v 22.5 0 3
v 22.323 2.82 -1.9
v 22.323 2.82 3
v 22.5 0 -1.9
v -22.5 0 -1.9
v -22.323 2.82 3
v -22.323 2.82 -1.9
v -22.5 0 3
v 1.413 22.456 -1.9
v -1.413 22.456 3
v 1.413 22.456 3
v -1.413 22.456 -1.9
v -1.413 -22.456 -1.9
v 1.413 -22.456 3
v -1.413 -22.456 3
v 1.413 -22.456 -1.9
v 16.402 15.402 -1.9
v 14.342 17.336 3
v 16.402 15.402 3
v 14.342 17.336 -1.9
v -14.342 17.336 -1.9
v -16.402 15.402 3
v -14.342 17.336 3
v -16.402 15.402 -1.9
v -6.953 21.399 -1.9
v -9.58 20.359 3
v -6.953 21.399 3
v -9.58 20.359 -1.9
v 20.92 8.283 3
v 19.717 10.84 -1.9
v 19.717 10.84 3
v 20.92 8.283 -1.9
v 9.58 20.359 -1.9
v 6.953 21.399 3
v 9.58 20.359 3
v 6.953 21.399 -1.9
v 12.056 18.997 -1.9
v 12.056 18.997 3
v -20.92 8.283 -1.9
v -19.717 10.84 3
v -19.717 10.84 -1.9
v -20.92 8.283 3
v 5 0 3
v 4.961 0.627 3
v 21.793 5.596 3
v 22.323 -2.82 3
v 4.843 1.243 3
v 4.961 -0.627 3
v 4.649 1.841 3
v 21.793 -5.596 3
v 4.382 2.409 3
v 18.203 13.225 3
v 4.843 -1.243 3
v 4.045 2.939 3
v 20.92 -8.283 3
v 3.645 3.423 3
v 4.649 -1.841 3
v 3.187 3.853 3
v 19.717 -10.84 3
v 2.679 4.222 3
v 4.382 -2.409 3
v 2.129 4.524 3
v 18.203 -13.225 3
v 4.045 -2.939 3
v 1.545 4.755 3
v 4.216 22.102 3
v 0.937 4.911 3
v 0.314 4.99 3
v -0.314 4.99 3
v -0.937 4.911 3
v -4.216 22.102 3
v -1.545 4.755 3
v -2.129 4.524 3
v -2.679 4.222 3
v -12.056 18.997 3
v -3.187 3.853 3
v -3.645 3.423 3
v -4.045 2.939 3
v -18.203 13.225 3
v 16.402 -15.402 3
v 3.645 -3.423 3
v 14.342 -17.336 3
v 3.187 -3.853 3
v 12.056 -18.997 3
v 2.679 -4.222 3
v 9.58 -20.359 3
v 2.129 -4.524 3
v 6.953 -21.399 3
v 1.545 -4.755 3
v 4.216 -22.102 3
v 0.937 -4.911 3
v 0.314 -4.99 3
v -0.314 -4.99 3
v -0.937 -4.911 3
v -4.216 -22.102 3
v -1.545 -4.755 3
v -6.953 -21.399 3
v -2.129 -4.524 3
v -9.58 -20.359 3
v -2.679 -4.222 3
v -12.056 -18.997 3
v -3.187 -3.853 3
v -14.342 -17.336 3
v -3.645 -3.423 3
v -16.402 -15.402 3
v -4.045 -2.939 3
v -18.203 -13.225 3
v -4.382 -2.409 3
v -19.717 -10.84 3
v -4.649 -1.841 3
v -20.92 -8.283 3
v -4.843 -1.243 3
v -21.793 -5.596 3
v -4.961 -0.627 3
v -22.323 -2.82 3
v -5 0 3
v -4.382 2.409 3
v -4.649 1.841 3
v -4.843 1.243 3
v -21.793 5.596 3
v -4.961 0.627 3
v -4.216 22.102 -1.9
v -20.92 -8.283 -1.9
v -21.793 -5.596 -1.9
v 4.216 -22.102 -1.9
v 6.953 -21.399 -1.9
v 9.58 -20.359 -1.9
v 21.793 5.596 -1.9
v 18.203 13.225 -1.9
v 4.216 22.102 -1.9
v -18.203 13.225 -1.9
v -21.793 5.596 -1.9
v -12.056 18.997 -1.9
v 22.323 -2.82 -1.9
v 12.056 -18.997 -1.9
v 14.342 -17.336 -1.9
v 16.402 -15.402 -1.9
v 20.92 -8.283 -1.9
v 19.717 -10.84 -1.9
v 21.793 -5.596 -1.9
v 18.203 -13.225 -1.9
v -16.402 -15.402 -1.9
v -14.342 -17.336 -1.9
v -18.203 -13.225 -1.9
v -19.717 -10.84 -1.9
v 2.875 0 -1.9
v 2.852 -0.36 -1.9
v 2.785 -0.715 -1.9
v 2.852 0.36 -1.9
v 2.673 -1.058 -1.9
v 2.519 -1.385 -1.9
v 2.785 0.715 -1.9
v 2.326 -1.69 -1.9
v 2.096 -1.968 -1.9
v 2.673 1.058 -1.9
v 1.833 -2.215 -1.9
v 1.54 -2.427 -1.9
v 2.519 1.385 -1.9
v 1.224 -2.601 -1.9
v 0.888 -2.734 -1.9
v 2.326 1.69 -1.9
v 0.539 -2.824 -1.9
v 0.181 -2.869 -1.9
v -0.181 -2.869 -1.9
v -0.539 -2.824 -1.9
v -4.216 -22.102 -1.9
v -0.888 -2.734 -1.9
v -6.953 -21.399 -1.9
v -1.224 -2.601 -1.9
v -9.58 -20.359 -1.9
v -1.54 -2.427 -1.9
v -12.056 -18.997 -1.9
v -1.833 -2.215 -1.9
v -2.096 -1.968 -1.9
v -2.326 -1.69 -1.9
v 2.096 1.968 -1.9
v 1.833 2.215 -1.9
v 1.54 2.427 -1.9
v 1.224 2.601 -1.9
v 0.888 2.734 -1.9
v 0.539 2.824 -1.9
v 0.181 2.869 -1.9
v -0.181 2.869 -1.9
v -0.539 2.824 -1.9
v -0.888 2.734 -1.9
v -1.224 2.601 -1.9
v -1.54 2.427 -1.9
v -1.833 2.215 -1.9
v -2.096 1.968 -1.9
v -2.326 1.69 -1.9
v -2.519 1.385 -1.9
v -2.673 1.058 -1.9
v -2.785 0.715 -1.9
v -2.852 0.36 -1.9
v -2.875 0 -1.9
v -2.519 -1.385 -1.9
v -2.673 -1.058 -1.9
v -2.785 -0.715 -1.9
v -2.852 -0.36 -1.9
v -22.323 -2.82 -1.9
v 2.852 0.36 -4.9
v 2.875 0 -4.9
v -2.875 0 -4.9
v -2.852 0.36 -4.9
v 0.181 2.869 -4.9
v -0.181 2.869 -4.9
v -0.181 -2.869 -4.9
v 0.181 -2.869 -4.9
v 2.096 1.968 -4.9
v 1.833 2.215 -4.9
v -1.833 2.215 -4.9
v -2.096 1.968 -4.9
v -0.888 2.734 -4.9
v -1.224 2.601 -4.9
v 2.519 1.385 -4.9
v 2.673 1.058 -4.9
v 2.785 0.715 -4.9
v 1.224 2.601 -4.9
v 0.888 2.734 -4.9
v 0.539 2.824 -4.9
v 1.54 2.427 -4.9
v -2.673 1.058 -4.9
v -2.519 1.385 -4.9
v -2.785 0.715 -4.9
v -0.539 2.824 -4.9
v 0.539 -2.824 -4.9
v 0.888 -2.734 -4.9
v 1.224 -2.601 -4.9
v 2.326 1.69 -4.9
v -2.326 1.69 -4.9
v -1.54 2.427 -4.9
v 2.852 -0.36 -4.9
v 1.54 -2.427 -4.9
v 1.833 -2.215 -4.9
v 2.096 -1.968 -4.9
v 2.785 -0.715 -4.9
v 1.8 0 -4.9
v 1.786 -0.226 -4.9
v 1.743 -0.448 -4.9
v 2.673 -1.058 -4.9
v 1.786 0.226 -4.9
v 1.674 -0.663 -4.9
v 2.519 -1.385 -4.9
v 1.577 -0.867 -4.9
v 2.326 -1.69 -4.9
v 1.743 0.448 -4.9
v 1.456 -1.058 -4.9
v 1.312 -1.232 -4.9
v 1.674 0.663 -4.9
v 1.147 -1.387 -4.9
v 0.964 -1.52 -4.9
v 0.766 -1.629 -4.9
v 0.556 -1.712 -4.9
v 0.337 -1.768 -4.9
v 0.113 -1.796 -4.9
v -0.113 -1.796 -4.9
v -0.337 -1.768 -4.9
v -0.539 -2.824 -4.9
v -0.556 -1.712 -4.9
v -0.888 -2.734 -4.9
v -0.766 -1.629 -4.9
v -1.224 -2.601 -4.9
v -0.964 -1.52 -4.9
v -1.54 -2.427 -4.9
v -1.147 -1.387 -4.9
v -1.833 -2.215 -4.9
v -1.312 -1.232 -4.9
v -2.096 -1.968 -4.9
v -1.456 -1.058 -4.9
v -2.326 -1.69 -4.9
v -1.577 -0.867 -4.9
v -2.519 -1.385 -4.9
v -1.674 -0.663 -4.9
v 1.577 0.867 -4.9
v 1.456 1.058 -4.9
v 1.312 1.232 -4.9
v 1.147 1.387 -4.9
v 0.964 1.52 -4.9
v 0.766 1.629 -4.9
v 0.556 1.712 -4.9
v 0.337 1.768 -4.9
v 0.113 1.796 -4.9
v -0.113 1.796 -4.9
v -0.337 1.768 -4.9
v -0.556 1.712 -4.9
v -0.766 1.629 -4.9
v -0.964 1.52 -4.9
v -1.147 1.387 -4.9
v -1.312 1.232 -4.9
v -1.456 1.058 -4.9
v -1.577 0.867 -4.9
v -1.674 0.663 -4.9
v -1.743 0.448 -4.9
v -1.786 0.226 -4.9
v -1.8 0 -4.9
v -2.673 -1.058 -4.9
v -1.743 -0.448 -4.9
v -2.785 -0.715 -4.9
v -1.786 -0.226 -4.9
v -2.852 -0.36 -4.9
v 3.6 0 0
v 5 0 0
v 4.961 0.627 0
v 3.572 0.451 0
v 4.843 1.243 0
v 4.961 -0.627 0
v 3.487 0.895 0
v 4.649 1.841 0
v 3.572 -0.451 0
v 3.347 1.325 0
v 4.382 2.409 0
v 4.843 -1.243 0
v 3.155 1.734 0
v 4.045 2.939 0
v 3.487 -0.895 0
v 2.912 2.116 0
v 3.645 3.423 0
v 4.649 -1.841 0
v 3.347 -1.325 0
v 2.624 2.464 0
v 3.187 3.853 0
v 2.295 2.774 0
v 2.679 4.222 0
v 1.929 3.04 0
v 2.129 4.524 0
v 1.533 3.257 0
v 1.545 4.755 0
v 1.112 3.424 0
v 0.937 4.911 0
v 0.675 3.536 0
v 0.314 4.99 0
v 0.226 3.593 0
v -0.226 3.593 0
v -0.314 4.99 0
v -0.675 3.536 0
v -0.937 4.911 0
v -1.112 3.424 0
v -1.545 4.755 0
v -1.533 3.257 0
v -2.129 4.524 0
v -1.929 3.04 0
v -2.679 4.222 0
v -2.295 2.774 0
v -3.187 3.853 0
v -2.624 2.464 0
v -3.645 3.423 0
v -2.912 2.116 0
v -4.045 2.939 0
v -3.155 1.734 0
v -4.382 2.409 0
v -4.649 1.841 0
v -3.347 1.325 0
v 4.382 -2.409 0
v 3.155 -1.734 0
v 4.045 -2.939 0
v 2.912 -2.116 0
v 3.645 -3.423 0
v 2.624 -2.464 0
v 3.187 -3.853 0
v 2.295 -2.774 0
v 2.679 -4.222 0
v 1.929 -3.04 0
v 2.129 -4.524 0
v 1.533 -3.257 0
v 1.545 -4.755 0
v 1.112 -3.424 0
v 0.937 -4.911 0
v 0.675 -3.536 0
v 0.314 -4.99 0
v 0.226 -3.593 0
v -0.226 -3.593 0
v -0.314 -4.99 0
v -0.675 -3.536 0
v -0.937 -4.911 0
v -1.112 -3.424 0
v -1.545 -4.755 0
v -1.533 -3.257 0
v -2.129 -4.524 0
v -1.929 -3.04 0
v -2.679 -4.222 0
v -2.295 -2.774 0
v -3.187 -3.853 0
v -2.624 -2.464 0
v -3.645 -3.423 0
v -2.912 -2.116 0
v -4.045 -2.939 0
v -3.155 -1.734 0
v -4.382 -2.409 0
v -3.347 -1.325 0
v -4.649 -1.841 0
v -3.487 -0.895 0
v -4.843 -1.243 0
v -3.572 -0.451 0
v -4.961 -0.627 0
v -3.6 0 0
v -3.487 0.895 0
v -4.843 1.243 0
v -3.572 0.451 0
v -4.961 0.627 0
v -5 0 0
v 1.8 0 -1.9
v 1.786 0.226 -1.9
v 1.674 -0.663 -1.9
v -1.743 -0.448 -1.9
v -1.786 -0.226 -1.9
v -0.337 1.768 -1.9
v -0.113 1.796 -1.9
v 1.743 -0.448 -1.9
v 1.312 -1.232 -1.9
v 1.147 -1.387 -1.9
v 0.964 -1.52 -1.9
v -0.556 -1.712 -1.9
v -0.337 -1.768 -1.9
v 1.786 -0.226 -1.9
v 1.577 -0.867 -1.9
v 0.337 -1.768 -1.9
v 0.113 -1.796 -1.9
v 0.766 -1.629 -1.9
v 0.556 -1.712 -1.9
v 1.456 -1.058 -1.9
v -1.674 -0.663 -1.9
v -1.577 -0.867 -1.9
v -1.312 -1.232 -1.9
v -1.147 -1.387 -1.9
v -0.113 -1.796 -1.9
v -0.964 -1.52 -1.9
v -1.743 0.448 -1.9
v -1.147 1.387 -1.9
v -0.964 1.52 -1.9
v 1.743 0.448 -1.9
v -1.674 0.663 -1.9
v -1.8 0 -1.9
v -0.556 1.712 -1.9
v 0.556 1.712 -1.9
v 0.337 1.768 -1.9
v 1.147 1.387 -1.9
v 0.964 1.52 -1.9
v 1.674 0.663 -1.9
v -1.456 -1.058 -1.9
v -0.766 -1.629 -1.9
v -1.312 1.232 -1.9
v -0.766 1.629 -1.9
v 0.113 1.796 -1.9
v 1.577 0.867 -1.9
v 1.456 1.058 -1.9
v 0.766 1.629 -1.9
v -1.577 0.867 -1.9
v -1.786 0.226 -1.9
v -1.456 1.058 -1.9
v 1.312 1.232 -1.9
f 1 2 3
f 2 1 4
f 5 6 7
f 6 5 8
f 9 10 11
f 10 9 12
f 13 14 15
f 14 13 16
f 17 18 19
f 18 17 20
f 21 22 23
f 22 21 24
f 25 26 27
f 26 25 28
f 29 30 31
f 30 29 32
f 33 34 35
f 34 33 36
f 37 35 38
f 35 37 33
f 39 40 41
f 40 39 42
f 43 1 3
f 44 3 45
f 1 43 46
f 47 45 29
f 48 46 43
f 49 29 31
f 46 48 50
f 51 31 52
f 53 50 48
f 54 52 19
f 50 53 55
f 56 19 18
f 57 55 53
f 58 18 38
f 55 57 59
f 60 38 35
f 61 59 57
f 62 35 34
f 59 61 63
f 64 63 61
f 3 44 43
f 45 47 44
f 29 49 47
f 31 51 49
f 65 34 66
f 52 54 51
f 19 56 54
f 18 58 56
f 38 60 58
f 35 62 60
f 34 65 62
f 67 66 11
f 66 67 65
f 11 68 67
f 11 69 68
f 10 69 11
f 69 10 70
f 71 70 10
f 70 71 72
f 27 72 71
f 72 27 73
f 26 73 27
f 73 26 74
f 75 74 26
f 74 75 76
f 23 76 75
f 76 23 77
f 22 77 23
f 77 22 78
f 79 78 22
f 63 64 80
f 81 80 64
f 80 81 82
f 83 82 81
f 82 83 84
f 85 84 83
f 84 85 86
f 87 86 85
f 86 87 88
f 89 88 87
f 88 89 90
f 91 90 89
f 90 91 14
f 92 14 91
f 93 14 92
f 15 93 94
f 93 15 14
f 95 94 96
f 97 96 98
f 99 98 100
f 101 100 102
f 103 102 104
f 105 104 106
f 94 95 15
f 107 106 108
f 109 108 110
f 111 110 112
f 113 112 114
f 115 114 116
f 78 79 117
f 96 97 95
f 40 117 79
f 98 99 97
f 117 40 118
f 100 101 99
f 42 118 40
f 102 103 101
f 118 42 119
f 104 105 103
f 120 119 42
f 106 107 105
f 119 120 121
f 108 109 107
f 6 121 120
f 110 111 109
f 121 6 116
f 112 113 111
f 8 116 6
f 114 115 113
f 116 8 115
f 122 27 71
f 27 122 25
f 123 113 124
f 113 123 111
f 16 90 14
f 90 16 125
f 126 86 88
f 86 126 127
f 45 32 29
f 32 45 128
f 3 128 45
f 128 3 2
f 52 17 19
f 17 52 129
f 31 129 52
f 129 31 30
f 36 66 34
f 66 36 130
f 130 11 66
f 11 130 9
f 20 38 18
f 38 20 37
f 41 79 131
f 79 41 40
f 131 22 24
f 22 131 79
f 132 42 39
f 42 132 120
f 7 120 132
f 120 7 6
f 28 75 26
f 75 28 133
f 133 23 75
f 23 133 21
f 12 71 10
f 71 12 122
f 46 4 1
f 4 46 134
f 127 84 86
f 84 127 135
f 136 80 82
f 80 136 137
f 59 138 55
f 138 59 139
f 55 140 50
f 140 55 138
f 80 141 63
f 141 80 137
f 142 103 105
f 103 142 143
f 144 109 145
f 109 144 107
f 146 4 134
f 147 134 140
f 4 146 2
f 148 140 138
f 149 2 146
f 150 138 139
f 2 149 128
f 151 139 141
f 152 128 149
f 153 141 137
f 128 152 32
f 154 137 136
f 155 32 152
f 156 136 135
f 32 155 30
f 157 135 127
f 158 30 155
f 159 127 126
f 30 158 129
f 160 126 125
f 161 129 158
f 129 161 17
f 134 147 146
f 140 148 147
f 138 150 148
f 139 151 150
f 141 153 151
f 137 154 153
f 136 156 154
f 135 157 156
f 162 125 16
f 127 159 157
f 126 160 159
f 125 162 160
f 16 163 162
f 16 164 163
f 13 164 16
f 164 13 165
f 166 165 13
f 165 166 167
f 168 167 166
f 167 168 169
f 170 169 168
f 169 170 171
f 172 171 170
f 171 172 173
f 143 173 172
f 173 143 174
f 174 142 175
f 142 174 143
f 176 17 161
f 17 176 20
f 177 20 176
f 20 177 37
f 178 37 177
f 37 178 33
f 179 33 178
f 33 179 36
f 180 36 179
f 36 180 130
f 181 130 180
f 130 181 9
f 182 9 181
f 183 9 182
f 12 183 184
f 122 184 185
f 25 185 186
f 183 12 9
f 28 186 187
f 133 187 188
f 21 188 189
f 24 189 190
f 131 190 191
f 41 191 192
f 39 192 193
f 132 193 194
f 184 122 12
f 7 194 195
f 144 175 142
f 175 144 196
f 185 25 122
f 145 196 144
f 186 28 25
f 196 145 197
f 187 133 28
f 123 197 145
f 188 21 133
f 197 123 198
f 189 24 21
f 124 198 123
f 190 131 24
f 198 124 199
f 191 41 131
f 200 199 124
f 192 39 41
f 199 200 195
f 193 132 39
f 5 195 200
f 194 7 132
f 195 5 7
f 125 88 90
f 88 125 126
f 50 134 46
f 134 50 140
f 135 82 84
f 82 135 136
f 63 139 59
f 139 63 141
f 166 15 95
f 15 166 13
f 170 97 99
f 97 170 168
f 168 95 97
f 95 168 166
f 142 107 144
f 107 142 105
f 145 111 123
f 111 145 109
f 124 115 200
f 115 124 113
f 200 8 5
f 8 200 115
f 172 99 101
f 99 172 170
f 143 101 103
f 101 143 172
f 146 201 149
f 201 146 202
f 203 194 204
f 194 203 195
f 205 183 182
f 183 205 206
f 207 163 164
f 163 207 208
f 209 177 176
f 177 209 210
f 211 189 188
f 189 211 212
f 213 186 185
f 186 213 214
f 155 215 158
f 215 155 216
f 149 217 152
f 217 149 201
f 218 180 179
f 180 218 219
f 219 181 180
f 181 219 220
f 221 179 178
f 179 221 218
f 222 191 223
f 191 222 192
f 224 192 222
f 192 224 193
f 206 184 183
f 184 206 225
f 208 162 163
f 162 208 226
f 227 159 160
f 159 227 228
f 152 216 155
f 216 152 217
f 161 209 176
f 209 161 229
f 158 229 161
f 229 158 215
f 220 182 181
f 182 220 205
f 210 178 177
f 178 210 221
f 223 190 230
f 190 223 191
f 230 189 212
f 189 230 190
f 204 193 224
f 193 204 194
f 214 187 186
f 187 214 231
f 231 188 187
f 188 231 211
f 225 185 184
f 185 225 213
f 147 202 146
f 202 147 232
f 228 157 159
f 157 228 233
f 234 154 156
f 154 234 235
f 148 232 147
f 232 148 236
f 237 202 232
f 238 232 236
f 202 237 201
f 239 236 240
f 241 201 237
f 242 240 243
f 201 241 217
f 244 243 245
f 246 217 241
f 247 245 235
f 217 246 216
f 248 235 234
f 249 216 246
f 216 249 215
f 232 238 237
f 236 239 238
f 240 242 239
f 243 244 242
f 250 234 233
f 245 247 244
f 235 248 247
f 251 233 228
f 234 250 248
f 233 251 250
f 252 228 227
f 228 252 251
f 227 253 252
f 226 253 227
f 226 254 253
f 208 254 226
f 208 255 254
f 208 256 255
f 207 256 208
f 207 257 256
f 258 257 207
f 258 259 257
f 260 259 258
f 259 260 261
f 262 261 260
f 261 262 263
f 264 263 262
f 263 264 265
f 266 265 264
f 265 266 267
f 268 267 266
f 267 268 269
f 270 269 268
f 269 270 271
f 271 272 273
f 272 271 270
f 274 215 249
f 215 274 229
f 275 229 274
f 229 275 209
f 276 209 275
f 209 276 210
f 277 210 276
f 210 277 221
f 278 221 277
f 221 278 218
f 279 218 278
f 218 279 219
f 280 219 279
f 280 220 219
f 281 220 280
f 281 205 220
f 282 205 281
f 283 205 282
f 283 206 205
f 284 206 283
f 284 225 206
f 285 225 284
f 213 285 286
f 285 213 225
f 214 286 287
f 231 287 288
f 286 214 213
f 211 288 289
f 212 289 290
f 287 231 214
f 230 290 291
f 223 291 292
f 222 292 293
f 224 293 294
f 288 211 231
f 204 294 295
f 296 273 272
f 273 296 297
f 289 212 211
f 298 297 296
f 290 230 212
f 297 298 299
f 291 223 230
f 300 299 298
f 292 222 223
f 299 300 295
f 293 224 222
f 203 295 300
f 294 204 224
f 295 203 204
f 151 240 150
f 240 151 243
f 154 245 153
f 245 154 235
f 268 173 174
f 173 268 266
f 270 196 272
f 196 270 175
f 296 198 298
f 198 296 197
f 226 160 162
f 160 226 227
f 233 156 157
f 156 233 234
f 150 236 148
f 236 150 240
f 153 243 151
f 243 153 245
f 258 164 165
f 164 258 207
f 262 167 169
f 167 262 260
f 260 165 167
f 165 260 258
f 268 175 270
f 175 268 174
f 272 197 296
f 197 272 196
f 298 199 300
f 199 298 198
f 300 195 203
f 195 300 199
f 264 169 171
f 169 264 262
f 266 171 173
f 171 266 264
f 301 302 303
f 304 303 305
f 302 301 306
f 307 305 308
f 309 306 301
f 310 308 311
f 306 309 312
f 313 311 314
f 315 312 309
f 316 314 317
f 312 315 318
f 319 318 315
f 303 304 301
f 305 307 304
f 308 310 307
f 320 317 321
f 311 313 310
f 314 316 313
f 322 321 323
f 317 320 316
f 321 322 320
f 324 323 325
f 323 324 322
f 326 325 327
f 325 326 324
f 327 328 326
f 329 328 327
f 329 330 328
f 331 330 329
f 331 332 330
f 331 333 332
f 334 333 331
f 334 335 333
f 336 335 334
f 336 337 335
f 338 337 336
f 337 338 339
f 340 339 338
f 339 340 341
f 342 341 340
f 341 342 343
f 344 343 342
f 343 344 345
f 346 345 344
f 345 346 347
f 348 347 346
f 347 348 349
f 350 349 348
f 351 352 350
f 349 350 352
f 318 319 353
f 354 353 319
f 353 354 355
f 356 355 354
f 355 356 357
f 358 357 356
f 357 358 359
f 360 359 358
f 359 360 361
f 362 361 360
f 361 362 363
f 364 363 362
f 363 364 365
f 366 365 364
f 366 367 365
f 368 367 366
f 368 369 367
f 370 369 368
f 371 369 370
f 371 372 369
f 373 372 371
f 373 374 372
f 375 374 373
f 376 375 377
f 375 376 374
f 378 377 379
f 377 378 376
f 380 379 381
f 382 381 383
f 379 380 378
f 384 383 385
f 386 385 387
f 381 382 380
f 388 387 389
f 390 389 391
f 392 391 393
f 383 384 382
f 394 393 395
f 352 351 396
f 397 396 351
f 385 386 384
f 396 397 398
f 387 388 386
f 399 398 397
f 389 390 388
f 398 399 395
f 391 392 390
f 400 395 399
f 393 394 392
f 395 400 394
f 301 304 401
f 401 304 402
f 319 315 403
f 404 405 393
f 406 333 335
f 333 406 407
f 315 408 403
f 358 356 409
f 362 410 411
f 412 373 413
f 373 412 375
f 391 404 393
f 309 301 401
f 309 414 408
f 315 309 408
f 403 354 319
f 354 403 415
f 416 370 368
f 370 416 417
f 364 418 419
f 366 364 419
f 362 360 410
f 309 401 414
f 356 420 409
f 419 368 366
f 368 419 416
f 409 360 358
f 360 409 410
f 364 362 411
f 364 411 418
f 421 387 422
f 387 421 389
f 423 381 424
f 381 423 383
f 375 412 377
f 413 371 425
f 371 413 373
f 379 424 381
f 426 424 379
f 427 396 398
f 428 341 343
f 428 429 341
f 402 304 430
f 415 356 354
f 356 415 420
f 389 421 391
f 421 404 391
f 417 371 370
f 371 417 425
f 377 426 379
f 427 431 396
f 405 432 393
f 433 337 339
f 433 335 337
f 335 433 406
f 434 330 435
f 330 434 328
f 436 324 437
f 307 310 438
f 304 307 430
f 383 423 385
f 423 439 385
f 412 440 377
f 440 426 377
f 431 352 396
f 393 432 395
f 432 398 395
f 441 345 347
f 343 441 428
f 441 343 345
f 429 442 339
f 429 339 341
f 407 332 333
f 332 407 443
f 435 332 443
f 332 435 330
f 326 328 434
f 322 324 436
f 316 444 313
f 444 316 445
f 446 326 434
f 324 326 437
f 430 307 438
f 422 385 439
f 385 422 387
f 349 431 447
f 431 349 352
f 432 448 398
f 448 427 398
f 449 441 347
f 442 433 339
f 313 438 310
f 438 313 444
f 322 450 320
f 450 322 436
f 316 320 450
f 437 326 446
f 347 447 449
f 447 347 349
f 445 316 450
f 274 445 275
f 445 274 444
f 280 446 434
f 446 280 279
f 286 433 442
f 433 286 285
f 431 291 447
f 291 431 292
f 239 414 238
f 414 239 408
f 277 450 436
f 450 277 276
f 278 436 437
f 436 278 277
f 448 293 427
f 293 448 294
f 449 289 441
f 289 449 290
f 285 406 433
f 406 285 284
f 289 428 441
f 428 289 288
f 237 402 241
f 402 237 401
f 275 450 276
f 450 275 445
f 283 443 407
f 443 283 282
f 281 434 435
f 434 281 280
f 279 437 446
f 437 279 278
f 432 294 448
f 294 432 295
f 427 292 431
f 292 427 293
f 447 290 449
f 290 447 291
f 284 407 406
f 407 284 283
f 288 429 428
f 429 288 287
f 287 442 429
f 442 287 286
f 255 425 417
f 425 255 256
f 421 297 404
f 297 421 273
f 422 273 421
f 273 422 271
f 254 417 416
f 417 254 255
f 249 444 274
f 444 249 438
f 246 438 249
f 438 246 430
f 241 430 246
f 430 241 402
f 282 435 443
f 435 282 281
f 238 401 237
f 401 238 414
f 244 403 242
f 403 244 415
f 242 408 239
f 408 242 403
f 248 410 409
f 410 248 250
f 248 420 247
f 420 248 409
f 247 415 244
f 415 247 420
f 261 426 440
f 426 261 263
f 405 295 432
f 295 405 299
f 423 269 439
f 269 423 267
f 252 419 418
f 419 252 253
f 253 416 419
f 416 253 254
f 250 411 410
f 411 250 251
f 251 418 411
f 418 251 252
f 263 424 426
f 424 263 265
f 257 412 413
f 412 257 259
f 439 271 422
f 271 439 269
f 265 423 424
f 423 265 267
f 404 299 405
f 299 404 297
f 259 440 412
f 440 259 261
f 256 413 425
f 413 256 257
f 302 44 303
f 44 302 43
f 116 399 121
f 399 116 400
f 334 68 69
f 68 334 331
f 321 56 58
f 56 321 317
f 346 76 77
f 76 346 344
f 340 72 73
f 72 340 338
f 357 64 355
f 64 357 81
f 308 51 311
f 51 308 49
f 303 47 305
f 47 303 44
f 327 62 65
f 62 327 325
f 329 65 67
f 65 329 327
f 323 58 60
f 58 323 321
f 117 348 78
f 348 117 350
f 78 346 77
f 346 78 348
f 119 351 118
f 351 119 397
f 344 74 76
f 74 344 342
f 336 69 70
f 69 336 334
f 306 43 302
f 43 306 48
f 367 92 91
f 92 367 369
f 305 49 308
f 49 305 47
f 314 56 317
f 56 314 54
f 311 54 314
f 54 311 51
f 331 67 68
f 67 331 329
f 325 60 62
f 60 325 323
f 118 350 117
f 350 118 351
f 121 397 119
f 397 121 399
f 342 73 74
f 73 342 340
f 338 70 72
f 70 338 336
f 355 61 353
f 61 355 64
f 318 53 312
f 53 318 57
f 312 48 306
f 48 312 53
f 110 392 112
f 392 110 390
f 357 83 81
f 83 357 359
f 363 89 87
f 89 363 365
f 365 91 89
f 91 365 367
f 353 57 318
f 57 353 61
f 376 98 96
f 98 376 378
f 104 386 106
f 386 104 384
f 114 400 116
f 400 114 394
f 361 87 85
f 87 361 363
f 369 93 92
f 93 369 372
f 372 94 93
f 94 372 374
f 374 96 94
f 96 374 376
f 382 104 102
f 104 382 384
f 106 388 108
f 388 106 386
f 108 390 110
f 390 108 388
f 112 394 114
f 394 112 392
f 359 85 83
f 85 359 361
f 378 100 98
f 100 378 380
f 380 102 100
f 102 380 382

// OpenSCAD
$fn = 50;


difference() {
	union() {
		translate(v = [0, 0, -1.9000000000]) {
			cylinder(h = 4.9000000000, r = 22.5000000000);
		}
		#translate(v = [0, 0, -4.9000000000]) {
			cylinder(h = 4.9000000000, r = 2.8750000000);
		}
	}
	union() {
		translate(v = [0, 0, 0]) {
			rotate(a = [0, 0, 0]) {
				difference() {
					union() {
						translate(v = [0, 0, -4.9000000000]) {
							cylinder(h = 4.9000000000, r = 1.5000000000);
						}
						translate(v = [0, 0, -1.9000000000]) {
							cylinder(h = 1.9000000000, r1 = 1.8000000000, r2 = 3.6000000000);
						}
						translate(v = [0, 0, -4.9000000000]) {
							cylinder(h = 4.9000000000, r = 1.8000000000);
						}
						translate(v = [0, 0, -4.9000000000]) {
							cylinder(h = 4.9000000000, r = 1.5000000000);
						}
					}
					union();
				}
			}
		}
		#cylinder(h = 3, r = 5.0000000000);
	}
}
